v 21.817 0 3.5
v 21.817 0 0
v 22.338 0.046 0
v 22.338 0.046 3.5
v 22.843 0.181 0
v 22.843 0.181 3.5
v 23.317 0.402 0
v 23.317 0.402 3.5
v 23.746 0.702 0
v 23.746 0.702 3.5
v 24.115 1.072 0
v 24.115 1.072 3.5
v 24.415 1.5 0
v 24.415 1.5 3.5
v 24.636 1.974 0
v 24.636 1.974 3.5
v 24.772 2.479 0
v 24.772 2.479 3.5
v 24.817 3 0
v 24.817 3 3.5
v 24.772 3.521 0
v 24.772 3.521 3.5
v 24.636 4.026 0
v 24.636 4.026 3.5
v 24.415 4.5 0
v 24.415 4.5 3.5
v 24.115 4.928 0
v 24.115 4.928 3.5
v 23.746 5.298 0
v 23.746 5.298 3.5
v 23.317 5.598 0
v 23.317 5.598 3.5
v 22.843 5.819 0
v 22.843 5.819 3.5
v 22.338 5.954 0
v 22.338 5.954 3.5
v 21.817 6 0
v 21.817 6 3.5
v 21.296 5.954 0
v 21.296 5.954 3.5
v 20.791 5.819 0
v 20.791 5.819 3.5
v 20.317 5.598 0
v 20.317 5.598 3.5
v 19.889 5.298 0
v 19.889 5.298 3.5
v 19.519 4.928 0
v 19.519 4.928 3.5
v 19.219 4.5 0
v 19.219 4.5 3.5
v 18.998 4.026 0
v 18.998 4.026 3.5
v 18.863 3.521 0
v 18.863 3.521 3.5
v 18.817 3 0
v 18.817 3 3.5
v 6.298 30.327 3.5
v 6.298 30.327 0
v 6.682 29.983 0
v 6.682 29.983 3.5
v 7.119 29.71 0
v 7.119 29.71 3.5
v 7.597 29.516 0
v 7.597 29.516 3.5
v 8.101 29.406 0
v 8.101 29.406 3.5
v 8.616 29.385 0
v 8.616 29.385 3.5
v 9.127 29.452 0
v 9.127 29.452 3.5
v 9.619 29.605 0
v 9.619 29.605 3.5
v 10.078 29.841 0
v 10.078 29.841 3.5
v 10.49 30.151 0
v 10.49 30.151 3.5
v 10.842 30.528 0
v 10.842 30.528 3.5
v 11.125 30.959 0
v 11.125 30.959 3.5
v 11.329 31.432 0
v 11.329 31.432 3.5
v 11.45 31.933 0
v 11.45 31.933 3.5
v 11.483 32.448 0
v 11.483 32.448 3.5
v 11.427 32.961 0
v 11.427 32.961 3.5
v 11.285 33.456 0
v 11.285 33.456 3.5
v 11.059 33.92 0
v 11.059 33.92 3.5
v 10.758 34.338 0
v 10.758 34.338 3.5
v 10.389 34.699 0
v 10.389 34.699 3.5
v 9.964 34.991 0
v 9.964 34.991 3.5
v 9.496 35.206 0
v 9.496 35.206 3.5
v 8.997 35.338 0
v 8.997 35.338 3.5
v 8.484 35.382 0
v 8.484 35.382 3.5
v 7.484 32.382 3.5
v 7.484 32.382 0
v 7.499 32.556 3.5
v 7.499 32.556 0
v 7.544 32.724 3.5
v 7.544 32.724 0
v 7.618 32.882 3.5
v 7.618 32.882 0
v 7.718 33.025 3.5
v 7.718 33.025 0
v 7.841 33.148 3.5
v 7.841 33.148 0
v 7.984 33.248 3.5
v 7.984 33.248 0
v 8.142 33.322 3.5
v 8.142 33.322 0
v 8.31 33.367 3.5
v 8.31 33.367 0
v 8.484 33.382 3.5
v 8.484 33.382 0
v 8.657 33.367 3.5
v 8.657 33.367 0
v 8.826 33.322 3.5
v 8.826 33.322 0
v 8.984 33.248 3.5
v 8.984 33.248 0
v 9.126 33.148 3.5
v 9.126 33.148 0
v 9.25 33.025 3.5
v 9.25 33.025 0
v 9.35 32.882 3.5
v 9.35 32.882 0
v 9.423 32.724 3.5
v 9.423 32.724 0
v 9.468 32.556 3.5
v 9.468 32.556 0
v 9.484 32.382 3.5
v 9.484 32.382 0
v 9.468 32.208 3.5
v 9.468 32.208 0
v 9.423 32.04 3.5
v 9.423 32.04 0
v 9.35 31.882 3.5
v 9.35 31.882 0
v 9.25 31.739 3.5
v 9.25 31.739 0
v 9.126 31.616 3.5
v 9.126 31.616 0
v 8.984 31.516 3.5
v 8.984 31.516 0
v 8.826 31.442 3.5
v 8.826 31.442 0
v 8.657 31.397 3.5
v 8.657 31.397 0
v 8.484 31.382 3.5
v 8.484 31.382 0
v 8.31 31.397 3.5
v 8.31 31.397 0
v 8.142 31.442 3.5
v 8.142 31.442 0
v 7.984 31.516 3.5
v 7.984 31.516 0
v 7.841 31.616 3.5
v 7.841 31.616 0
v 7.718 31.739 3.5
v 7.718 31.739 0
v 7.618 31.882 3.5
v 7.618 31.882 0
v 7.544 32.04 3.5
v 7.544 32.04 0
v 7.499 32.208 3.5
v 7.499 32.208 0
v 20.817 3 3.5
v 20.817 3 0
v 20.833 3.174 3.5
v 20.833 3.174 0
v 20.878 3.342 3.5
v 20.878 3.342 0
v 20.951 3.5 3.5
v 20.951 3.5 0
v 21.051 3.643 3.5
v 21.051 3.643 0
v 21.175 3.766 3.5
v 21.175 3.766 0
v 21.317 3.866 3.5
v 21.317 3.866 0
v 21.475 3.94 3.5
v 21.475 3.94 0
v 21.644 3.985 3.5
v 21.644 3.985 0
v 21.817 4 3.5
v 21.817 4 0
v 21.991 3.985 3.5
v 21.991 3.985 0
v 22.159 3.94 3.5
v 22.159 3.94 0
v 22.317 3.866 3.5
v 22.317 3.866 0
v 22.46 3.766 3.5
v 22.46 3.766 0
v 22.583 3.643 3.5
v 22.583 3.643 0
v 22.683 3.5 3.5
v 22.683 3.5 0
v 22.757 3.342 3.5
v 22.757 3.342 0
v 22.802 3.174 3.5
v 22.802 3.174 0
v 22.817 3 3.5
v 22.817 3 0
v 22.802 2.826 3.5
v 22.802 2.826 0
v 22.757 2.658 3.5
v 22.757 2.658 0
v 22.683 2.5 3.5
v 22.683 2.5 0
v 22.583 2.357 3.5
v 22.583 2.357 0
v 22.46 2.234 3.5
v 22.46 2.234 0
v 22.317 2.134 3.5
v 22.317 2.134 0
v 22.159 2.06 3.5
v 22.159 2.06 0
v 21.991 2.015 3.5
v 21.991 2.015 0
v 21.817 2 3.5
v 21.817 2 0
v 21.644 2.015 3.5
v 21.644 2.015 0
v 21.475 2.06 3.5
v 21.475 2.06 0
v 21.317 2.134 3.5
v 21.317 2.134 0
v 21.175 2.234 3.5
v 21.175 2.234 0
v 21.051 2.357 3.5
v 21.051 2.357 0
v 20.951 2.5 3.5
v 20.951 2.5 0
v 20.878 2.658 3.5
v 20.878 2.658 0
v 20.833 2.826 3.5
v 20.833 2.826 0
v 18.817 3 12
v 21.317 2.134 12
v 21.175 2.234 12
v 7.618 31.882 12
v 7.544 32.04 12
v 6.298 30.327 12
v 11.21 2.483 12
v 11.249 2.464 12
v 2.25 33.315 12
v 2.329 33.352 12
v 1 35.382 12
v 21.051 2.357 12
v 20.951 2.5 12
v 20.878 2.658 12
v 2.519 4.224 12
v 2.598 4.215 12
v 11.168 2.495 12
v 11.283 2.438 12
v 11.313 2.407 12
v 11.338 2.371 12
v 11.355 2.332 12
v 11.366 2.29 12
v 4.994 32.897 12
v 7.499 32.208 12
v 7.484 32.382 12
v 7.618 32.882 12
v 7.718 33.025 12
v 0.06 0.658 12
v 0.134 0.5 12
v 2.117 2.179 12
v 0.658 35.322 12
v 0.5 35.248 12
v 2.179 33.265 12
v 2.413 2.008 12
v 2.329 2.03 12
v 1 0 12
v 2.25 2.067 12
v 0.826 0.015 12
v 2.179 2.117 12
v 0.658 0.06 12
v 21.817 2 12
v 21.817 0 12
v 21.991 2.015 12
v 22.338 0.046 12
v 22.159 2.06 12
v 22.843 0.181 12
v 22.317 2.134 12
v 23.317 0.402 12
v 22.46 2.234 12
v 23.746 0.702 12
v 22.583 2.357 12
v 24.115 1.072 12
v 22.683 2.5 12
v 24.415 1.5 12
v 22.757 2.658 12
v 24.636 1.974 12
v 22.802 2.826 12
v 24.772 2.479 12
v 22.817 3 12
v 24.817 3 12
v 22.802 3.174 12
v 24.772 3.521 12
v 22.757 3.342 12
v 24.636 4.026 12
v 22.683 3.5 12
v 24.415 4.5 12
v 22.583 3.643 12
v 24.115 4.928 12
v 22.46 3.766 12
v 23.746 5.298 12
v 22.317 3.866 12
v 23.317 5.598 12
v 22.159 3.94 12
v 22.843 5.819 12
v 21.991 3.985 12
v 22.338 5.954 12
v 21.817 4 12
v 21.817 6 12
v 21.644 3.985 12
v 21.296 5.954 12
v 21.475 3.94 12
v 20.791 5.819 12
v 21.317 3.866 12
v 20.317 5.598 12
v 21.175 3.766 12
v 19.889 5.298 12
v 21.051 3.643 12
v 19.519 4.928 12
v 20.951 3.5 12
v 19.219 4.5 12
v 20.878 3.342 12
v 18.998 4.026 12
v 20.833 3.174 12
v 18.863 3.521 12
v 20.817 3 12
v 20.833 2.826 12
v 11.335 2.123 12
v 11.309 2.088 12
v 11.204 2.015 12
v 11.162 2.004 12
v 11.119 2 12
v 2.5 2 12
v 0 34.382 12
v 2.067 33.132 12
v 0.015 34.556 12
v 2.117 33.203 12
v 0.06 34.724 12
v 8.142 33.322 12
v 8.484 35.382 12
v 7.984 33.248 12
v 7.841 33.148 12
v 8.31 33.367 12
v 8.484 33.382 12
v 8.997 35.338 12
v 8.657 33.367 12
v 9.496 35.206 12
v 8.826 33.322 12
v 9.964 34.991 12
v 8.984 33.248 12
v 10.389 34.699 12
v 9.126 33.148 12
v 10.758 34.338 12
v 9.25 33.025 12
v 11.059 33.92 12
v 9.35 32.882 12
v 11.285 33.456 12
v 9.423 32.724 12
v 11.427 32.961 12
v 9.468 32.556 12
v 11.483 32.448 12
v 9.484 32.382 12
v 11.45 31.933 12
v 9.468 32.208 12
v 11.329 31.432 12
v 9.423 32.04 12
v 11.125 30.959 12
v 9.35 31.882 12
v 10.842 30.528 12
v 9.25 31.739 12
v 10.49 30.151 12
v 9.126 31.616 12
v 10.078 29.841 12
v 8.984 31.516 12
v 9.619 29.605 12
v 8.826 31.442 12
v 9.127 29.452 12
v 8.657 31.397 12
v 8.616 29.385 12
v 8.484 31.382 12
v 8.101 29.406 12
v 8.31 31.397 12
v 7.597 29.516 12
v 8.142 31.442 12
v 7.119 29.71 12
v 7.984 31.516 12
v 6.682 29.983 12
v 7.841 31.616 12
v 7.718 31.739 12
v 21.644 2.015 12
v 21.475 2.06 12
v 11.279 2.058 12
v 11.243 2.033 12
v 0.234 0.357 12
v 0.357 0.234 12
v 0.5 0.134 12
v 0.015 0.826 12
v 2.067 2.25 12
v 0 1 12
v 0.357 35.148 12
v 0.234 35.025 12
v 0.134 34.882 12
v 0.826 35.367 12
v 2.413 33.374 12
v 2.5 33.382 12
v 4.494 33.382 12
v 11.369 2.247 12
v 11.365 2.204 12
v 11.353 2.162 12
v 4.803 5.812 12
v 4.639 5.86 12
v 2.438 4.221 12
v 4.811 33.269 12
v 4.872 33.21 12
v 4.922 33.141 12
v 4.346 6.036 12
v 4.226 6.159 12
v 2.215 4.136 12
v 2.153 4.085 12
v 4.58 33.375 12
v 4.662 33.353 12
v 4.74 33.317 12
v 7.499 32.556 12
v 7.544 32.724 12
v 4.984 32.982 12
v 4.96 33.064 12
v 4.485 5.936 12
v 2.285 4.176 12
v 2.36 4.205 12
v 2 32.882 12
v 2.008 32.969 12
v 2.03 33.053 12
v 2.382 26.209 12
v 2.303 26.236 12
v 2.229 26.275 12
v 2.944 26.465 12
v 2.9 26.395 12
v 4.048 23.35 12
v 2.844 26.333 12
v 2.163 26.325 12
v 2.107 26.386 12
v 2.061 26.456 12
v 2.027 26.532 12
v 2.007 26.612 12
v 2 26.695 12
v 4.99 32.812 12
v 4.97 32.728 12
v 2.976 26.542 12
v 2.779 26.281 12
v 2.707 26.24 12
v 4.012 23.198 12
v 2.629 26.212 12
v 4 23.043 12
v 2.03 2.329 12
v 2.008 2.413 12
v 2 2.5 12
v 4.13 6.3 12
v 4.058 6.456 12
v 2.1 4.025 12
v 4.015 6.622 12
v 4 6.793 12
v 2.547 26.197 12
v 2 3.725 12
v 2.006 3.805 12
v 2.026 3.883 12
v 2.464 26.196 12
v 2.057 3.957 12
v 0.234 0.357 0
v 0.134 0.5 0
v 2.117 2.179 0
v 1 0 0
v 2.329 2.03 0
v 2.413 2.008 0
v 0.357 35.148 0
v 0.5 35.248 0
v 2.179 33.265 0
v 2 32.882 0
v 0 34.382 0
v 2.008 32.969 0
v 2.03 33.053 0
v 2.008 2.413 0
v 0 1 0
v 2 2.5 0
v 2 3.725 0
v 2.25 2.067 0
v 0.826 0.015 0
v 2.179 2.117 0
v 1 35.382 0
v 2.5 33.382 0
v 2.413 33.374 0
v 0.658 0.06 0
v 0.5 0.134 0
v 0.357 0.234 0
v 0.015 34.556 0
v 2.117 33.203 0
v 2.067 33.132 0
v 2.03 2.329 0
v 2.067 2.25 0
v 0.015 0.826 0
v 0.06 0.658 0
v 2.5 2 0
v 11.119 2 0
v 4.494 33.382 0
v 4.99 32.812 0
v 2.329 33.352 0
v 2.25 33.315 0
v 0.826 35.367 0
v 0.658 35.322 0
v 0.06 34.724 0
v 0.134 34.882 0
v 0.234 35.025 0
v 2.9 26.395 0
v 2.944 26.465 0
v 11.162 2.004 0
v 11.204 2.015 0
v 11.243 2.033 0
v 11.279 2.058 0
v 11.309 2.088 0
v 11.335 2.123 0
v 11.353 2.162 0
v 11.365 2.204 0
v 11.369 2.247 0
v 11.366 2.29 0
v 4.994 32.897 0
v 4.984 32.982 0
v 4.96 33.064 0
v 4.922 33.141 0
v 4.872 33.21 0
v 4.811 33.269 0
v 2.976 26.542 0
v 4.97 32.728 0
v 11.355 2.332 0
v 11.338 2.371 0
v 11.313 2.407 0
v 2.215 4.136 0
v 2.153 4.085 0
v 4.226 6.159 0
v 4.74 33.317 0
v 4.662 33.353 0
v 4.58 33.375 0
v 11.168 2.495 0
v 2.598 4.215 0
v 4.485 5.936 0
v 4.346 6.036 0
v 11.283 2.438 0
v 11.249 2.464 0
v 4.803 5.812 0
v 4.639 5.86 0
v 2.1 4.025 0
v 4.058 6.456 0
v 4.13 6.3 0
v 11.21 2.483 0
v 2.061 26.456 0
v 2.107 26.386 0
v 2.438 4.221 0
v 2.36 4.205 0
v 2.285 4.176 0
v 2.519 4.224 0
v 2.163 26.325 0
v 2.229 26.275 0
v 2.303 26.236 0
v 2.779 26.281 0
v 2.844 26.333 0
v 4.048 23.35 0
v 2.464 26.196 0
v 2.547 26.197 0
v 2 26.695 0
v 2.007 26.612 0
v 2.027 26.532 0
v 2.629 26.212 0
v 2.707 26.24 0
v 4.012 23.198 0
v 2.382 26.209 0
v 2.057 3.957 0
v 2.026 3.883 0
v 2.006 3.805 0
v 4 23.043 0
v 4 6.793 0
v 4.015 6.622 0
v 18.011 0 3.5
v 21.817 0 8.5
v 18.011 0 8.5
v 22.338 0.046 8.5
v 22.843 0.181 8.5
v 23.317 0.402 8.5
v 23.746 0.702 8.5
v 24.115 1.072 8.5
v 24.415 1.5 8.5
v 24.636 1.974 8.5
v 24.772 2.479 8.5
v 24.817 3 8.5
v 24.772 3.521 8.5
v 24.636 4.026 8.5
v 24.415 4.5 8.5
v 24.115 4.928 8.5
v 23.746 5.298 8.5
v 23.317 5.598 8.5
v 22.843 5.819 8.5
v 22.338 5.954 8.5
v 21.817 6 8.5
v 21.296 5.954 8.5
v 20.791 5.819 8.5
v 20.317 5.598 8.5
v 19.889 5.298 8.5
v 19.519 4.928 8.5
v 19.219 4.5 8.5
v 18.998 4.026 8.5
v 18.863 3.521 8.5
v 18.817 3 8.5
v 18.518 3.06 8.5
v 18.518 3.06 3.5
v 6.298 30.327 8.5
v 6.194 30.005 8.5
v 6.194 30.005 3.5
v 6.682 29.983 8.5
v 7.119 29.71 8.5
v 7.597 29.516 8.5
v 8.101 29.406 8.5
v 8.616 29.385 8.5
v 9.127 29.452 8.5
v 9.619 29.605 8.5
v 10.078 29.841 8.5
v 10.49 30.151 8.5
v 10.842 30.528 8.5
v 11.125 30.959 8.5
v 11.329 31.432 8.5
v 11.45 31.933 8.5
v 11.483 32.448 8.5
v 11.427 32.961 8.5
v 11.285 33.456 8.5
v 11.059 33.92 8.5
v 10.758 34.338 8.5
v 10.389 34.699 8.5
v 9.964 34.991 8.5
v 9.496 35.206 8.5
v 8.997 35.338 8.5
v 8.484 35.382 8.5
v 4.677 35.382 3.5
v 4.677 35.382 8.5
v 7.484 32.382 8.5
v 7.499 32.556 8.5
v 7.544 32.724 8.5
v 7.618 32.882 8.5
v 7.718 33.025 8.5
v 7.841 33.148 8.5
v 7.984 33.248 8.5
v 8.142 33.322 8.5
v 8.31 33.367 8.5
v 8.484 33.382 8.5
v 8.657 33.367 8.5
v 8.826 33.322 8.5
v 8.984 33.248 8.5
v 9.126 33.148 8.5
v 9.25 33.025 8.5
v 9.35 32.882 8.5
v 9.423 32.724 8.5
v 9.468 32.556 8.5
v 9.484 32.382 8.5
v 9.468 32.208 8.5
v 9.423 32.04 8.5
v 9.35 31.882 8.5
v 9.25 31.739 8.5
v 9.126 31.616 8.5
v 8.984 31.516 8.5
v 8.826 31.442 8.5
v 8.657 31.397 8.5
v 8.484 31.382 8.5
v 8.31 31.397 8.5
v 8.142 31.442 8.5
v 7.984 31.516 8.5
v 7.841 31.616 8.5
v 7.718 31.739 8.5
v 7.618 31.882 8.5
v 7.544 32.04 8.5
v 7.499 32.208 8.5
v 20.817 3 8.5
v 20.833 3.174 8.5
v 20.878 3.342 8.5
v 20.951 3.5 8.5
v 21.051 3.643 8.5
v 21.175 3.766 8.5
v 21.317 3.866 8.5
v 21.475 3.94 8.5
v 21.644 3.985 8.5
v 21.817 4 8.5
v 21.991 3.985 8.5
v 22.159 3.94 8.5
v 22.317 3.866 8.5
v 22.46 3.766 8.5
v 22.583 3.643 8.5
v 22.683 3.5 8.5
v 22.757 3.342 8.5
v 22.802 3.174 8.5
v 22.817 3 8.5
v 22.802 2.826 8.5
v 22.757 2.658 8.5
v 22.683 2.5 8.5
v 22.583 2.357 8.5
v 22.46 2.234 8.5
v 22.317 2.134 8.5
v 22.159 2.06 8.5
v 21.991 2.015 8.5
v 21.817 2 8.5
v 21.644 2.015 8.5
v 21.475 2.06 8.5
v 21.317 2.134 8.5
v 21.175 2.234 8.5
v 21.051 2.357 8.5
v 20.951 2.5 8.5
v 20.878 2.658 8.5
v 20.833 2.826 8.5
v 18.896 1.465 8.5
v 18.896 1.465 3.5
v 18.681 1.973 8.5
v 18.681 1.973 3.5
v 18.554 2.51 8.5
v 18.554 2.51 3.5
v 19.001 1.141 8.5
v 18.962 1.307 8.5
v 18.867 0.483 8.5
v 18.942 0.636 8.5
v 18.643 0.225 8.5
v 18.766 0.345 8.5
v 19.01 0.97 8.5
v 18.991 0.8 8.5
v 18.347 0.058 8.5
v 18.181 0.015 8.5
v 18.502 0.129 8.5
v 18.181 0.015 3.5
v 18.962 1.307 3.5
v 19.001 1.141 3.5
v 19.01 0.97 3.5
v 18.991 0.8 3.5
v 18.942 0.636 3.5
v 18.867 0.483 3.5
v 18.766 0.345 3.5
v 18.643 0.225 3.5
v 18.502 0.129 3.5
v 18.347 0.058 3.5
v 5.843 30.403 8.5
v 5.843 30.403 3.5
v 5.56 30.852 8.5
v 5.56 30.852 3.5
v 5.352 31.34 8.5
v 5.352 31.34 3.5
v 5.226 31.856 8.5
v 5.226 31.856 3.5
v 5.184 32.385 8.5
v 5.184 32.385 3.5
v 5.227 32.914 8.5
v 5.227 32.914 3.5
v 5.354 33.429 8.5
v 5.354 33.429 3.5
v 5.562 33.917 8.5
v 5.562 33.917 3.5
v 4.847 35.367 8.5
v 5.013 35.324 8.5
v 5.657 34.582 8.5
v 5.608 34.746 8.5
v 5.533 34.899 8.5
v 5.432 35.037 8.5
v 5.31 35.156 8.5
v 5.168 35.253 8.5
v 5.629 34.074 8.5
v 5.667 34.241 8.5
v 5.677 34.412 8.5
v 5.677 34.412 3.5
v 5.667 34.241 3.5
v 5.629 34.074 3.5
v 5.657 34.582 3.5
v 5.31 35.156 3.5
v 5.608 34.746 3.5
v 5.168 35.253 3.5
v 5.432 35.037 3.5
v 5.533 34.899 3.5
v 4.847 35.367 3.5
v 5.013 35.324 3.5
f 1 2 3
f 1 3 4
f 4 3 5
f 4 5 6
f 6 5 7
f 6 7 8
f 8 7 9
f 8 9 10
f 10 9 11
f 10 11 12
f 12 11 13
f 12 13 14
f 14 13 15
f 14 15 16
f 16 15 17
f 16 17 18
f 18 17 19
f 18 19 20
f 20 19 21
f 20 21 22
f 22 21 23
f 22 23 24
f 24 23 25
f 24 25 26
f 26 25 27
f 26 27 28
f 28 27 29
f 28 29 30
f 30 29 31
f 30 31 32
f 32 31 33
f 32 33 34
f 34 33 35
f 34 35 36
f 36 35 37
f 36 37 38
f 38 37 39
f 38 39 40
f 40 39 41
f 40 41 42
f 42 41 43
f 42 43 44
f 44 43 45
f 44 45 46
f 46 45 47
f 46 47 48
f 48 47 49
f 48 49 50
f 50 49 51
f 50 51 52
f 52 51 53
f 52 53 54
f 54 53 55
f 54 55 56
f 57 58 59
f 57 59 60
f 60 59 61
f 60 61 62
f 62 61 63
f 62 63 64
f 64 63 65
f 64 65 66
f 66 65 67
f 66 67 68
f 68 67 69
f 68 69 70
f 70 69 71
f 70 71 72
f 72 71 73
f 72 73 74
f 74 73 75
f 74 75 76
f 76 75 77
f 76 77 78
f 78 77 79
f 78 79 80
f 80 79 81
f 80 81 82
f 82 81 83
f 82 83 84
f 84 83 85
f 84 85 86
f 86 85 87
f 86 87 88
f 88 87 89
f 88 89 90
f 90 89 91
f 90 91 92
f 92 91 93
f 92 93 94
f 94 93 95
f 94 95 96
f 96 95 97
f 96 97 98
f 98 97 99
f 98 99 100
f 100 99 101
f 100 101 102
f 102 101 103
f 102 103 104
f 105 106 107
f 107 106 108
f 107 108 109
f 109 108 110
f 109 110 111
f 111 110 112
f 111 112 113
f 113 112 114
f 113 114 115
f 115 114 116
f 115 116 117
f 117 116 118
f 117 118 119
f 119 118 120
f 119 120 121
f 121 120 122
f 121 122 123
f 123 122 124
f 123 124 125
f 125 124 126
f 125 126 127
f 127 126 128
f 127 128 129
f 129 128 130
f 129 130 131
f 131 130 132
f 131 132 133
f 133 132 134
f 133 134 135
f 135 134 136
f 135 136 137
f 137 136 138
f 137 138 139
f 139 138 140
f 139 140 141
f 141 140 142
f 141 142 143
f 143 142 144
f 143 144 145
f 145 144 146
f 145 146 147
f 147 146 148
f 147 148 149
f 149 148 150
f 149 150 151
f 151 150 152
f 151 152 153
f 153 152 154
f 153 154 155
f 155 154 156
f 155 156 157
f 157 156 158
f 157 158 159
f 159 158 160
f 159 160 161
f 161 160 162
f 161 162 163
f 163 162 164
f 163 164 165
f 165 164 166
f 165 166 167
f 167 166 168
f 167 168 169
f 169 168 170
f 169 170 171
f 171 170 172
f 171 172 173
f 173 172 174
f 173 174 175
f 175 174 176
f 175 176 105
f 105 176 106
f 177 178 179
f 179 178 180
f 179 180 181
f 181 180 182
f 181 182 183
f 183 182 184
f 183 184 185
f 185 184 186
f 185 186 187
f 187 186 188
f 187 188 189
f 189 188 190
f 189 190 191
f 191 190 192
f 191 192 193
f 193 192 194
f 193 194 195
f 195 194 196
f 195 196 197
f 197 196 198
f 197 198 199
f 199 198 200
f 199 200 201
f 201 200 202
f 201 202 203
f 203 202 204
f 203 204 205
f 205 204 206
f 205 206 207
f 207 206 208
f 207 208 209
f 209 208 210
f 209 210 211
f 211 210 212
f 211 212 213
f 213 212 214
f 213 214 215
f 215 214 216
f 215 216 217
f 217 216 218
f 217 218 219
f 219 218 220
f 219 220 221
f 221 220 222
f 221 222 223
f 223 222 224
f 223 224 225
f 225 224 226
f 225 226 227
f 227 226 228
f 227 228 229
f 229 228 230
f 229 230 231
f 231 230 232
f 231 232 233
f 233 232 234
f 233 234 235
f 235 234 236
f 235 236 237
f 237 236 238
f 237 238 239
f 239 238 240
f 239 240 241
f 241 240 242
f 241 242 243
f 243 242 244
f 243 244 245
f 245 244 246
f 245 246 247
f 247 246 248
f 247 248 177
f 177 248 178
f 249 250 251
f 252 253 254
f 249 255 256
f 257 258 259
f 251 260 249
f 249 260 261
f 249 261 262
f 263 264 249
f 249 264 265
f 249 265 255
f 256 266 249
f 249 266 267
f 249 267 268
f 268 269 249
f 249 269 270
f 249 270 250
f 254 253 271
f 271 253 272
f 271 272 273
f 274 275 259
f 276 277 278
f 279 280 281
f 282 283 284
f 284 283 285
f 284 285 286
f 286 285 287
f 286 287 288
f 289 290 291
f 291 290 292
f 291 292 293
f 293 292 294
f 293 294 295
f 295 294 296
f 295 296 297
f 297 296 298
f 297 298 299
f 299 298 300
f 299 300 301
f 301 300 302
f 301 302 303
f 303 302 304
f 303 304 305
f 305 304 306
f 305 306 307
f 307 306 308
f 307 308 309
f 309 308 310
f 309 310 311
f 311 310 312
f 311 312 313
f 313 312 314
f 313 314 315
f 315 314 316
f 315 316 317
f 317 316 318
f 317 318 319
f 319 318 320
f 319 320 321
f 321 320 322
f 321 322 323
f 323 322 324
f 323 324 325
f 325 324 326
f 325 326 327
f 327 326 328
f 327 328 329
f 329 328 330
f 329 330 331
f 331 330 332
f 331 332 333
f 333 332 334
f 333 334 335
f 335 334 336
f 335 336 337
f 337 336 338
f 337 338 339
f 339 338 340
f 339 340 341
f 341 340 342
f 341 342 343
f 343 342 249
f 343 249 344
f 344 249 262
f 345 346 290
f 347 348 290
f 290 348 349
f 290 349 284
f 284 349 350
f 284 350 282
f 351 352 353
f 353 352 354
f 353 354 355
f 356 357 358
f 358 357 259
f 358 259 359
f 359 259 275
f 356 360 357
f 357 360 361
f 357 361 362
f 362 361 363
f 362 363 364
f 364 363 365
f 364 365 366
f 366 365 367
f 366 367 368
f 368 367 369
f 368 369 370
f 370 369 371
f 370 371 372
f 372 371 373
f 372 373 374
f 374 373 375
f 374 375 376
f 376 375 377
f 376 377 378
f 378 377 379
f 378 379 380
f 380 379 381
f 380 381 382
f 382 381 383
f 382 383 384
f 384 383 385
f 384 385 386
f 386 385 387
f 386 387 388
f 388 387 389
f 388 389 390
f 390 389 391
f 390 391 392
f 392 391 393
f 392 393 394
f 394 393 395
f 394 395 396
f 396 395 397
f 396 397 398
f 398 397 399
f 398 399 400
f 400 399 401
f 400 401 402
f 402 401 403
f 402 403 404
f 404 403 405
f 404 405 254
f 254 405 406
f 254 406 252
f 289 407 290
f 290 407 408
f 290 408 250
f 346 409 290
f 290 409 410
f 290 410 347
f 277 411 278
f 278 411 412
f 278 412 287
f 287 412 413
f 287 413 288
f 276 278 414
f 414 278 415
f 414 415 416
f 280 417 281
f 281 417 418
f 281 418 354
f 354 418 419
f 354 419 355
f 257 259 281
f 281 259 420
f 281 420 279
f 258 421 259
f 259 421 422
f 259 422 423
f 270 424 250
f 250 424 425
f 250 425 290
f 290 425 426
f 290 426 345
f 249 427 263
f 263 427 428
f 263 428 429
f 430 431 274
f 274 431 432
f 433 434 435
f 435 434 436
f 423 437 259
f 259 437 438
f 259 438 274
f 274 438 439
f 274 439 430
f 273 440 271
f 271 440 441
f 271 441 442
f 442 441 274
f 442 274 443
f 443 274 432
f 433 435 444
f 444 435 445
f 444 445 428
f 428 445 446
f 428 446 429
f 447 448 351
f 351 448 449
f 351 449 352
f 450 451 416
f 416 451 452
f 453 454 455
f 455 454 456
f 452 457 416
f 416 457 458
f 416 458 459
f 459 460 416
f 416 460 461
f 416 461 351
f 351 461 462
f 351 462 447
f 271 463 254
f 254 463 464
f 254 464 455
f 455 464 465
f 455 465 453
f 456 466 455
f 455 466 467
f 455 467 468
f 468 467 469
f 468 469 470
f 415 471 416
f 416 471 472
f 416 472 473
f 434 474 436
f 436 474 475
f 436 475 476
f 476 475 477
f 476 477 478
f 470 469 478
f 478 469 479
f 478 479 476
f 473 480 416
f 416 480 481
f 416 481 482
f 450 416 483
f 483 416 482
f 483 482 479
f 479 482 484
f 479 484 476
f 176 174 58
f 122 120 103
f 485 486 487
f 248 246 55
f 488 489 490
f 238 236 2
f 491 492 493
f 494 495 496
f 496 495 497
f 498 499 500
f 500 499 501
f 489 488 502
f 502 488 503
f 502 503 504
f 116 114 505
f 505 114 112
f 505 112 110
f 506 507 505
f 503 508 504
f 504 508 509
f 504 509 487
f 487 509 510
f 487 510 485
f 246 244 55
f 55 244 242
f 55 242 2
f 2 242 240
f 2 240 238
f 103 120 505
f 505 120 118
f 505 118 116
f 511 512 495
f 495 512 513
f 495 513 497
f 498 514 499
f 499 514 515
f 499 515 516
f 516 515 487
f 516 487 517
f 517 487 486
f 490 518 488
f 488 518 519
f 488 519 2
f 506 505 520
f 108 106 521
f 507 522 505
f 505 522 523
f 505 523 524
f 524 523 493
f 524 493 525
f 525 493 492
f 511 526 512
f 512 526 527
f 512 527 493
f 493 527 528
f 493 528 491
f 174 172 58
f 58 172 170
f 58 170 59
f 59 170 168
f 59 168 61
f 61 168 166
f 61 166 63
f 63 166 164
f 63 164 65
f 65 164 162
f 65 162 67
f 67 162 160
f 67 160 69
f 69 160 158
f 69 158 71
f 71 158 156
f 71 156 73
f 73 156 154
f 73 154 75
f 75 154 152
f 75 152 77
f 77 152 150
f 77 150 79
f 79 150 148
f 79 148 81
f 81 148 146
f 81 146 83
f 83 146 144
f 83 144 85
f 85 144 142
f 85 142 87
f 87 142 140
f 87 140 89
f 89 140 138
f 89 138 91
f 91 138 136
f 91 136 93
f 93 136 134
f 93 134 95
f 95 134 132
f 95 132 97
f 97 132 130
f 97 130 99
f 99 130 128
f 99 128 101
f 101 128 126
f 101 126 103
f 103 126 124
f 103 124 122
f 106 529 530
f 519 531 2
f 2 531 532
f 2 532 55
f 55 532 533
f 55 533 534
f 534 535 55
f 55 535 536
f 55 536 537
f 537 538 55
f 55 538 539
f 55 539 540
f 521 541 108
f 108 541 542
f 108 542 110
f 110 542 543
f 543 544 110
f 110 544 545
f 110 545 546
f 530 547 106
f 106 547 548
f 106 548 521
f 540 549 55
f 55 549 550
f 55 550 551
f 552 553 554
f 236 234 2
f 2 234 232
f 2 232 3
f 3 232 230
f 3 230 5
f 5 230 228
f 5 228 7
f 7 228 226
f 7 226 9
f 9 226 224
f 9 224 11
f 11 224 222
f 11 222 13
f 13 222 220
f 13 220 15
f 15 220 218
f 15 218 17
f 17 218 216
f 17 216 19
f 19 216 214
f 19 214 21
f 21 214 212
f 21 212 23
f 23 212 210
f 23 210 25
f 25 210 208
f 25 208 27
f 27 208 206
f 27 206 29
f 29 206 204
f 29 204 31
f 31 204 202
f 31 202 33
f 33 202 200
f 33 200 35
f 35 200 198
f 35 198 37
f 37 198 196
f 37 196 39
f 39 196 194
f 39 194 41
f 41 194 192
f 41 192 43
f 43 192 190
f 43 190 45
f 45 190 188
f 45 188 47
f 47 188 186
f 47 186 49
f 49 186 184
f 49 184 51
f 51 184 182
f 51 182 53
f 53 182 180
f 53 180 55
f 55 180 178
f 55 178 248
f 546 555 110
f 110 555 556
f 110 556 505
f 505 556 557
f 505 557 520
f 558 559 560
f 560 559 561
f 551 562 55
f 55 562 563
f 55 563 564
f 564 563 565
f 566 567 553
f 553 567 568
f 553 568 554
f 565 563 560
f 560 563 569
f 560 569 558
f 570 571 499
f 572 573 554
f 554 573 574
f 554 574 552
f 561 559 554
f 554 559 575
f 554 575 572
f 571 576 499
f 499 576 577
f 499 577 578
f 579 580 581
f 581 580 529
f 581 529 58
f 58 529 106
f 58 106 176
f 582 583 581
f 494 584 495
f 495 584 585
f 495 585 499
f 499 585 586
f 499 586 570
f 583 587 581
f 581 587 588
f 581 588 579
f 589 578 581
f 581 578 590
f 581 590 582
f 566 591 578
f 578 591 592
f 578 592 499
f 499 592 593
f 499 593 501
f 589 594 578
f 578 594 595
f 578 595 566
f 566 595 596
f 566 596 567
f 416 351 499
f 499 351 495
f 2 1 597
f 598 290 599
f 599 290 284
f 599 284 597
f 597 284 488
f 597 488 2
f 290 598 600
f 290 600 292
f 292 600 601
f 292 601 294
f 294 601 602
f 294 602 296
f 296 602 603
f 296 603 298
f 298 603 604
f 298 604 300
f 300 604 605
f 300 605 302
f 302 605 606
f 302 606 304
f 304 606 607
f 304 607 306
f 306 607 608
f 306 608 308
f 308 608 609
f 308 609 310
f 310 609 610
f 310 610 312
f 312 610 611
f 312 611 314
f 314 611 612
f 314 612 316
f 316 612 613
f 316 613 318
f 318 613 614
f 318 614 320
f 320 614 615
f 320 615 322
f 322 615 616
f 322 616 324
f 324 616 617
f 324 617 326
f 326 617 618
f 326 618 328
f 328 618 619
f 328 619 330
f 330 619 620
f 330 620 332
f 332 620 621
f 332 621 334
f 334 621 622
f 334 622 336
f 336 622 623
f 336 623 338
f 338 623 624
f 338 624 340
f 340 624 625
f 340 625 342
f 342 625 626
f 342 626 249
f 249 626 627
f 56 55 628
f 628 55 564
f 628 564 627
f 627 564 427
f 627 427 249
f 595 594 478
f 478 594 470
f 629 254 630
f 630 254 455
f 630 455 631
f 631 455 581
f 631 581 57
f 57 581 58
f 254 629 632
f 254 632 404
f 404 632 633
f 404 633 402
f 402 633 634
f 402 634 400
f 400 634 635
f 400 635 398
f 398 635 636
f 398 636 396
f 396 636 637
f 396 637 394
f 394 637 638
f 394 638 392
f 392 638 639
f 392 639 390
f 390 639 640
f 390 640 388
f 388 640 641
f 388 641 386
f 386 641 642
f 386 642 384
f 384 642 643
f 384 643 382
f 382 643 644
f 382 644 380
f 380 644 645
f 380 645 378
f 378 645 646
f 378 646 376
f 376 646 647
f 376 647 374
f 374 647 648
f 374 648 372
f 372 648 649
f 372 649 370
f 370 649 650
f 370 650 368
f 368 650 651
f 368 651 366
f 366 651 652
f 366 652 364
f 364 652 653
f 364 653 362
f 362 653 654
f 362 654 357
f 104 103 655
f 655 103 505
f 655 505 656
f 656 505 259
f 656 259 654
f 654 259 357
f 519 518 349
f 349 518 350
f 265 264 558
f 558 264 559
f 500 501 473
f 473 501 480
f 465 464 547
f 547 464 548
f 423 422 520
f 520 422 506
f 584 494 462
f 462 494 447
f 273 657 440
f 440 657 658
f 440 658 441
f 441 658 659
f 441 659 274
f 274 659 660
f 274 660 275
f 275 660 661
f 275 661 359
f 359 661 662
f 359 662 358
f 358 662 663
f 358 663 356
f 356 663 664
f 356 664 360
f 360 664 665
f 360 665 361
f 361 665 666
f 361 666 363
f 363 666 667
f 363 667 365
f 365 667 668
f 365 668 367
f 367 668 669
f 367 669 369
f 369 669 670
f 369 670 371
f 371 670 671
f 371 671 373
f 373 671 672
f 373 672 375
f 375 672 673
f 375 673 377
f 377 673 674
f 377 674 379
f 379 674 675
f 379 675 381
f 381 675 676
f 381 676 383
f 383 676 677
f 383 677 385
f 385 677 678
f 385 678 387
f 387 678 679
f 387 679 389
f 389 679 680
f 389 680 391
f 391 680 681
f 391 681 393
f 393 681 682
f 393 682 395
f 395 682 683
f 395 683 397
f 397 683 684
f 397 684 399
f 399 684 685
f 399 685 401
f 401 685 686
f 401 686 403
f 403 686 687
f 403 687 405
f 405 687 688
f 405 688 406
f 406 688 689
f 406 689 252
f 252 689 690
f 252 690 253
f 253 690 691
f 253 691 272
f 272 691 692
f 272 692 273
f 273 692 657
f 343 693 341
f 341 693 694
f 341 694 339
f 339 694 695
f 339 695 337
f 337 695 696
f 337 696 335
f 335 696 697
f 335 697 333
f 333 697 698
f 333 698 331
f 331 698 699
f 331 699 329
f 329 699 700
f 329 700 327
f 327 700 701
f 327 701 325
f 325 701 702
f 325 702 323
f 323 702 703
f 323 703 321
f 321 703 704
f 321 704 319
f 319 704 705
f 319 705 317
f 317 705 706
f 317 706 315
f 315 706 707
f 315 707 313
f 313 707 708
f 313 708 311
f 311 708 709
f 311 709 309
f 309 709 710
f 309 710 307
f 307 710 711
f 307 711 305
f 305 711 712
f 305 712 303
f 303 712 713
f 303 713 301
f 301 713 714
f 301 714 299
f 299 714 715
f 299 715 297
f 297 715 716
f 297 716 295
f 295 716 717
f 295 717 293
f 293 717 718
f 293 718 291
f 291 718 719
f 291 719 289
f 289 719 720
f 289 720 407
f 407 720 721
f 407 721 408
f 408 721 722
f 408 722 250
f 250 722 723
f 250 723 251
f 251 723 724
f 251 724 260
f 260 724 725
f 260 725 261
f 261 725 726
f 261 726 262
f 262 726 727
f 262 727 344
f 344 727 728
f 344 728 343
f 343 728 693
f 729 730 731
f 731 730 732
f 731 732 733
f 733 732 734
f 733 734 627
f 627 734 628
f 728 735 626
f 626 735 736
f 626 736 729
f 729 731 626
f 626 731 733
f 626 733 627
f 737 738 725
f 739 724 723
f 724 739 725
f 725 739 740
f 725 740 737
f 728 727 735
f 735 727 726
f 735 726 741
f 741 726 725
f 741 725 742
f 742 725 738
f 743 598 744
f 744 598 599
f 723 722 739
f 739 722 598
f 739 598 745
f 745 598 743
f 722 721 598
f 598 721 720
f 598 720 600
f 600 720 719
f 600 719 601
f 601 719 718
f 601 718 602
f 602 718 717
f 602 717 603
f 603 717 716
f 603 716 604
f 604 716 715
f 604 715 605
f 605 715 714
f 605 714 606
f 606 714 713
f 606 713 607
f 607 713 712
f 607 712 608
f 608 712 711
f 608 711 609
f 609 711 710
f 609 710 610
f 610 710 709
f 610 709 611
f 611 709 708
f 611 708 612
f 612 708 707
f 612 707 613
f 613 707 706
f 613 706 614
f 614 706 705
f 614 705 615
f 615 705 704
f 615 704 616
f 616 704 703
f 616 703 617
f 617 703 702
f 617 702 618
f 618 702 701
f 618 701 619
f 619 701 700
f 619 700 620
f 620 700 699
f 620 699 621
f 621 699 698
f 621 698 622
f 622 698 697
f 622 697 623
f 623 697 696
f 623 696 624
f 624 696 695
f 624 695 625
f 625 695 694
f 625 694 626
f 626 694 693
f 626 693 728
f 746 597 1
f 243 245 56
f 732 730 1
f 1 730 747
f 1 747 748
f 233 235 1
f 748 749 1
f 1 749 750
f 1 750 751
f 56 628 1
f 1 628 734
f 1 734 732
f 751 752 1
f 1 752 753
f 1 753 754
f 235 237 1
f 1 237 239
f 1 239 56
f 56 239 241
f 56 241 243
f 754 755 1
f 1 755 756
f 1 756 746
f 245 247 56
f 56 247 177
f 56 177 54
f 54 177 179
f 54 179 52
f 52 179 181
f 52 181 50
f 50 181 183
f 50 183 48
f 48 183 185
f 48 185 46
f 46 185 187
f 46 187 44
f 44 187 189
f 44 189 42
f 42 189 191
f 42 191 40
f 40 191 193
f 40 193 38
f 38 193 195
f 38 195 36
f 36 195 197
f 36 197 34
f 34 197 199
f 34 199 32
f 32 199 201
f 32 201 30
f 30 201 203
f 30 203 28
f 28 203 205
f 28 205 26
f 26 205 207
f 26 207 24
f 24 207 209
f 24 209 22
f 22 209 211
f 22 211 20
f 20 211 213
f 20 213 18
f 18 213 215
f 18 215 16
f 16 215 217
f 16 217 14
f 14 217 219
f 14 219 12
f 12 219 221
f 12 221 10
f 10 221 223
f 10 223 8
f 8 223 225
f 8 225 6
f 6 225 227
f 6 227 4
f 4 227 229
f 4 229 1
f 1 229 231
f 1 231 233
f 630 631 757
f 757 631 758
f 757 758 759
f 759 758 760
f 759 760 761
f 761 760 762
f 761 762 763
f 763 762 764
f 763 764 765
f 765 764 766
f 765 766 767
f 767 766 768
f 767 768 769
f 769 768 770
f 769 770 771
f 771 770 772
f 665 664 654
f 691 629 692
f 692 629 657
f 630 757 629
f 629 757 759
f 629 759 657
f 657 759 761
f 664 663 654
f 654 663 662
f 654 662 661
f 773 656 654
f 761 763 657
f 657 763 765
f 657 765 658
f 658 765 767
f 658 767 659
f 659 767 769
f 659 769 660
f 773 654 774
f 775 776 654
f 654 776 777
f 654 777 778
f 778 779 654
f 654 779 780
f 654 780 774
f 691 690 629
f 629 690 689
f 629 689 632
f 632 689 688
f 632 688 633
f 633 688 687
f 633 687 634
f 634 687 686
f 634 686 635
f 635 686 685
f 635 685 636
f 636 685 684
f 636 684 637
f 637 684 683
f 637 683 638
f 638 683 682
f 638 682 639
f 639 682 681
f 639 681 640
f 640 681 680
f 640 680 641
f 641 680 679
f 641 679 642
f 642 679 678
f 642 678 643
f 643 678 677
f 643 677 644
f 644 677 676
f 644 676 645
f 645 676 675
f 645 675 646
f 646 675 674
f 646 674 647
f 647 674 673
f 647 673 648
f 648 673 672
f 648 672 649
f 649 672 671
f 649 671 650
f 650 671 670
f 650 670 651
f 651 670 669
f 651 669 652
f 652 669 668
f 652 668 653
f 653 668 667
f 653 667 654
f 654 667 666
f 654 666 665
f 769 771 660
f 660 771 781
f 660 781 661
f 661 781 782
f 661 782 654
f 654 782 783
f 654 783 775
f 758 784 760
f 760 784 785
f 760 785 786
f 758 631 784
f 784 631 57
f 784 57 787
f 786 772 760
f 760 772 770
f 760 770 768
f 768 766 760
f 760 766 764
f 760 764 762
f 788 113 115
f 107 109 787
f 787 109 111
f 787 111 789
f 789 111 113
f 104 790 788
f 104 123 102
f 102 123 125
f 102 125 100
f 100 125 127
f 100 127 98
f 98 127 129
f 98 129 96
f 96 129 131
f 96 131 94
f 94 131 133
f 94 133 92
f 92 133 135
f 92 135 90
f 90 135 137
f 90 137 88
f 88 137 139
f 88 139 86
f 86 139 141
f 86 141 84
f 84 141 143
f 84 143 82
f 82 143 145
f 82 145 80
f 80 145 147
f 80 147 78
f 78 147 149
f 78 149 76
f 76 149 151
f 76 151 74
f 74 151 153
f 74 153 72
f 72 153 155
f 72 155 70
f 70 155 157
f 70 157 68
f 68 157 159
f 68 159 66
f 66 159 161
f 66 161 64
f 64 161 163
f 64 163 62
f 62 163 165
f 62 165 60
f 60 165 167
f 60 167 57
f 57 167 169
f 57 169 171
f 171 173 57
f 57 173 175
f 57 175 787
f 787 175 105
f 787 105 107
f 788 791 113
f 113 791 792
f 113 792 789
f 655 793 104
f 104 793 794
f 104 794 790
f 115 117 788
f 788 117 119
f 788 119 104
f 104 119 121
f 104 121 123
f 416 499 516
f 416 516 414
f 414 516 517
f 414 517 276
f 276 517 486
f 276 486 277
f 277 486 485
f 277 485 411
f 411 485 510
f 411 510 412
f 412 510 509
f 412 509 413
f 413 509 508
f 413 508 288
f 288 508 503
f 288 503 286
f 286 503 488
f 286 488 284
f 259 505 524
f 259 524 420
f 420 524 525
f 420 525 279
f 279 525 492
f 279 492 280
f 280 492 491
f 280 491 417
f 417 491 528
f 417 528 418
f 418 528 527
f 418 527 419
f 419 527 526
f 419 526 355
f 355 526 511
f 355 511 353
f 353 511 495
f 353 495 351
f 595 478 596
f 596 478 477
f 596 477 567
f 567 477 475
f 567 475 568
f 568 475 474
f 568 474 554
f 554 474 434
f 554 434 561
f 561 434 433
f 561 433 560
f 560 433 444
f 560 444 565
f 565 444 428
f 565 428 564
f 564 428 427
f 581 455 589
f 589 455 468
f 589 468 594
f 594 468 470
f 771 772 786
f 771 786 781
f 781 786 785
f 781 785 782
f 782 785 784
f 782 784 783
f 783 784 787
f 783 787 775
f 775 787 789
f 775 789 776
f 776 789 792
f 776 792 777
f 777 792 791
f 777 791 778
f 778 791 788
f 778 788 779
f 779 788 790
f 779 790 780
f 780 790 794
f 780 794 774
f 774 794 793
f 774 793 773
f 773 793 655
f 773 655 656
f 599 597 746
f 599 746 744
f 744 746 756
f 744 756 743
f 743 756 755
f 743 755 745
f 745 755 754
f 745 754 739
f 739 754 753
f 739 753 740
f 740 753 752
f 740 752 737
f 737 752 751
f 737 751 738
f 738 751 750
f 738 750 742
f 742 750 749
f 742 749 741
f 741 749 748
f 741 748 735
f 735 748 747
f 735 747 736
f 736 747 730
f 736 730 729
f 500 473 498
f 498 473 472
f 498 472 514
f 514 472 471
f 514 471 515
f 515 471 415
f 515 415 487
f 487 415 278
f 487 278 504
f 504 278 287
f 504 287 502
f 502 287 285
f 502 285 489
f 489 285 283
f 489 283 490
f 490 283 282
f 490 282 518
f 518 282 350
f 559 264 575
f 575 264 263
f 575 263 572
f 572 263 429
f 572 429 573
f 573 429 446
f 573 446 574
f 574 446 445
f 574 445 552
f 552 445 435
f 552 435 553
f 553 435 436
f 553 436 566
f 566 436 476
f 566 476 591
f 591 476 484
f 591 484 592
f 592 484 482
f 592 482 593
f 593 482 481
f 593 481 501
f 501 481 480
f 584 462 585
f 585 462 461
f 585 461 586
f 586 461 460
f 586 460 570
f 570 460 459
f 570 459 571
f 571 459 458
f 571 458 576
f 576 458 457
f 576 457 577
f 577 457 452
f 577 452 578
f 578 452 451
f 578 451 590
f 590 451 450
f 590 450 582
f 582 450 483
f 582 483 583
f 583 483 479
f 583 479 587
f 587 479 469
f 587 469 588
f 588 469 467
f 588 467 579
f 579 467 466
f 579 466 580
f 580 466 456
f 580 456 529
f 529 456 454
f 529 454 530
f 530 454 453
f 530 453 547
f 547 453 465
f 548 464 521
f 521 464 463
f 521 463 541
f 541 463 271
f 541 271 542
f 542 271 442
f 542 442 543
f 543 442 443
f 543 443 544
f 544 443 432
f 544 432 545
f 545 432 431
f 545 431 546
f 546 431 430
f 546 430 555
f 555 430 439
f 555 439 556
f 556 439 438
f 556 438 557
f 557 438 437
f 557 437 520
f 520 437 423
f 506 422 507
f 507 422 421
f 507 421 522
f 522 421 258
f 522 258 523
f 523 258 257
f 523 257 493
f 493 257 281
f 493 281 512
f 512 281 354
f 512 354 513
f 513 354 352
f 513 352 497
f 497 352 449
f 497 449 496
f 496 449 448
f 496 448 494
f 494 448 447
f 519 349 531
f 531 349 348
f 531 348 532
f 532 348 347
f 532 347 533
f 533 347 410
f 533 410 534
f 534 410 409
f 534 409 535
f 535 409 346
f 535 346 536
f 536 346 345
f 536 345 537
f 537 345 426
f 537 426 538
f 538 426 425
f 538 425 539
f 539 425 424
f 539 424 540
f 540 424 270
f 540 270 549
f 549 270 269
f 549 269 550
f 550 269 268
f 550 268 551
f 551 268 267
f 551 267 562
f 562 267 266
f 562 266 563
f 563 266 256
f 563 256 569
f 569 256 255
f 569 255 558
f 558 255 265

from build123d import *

# Parameters (mm, degrees)
SKETCH1_R               = 1
BOSS_EXTRUDE1_DEPTH     = 12
SKETCH2_R               = 3.3
CUT_EXTRUDE1_DEPTH      = 2.5
CUT_EXTRUDE1_DEPTH_BACK = 2.5
FILLET1_R               = 1
FILLET2_R               = 1
FILLET3_R               = 1
FILLET4_R               = 0.5
FILLET5_R               = 0.25


with BuildPart() as part:
    # Sketch1 → Boss-Extrude1 (new body)
    with BuildSketch(Plane.XY):
        with BuildLine():
            Line((0, 0), (21.817354946, 0))
            ThreePointArc((21.817354946, 0), (23.938675289, 5.121320344), (18.817354946, 3))
            Line((18.817354946, 3), (4, 5.97347684))
            Line((4, 5.97347684), (4, 23.200108131))
            Line((4, 23.200108131), (6.297593783, 30.327226275))
            ThreePointArc((6.297593783, 30.327226275), (11.237097985, 31.191049803), (8.483562347, 35.381865278))
            Line((8.483562347, 35.381865278), (0, 35.381865278))
            Line((0, 35.381865278), (0, 0))
        make_face()
        with Locations((8.483562347, 32.381865278)):
            Circle(SKETCH1_R, mode=Mode.SUBTRACT)
        with Locations((21.817354946, 3)):
            Circle(SKETCH1_R, mode=Mode.SUBTRACT)
        Polygon((5.180971974, 33.381865278), (2, 33.381865278), (2, 23.514514817), align=None, mode=Mode.SUBTRACT)
        Polygon((2, 2), (2, 4.334954297), (13.63548548, 2), align=None, mode=Mode.SUBTRACT)
    extrude(amount=BOSS_EXTRUDE1_DEPTH)

    # Sketch2 → Cut-Extrude1 (cut, two sides)
    with BuildSketch(Plane.XY.offset(6)) as cut_extrude1_sk:
        with Locations((8.483562347, 32.381865278)):
            Circle(SKETCH2_R)
        with Locations((21.817354946, 3)):
            Circle(SKETCH2_R)
    extrude(amount=CUT_EXTRUDE1_DEPTH, mode=Mode.SUBTRACT)
    extrude(cut_extrude1_sk.sketch, amount=-CUT_EXTRUDE1_DEPTH_BACK, mode=Mode.SUBTRACT)

    # Fillet1
    fillet1_edges = [part.edges().sort_by_distance(p)[0] for p in [
        (0, 35.381865278, 6),
        (0, 0, 6),
    ]]
    fillet(fillet1_edges, radius=FILLET1_R)

    # Fillet2
    fillet2_edges = [part.edges().sort_by_distance(p)[0] for p in [
        (4, 23.200108131, 6),
        (4, 5.97347684, 6),
    ]]
    fillet(fillet2_edges, radius=FILLET2_R)

    # Fillet3
    fillet3_edges = [part.edges().sort_by_distance(p)[0] for p in [
        (7.108789639, 35.381865278, 6),
        (20.442582237, 0, 6),
    ]]
    fillet(fillet3_edges, radius=FILLET3_R)

    # Fillet4
    fillet4_edges = [part.edges().sort_by_distance(p)[0] for p in [
        (2, 2, 6),
        (2, 4.334954297, 6),
        (2, 23.514514817, 6),
        (5.180971974, 33.381865278, 6),
        (2, 33.381865278, 6),
    ]]
    fillet(fillet4_edges, radius=FILLET4_R)

    # Fillet5
    fillet5_edges = [part.edges().sort_by_distance(p)[0] for p in [
        (13.63548548, 2, 6),
    ]]
    fillet(fillet5_edges, radius=FILLET5_R)


solid = part.part
